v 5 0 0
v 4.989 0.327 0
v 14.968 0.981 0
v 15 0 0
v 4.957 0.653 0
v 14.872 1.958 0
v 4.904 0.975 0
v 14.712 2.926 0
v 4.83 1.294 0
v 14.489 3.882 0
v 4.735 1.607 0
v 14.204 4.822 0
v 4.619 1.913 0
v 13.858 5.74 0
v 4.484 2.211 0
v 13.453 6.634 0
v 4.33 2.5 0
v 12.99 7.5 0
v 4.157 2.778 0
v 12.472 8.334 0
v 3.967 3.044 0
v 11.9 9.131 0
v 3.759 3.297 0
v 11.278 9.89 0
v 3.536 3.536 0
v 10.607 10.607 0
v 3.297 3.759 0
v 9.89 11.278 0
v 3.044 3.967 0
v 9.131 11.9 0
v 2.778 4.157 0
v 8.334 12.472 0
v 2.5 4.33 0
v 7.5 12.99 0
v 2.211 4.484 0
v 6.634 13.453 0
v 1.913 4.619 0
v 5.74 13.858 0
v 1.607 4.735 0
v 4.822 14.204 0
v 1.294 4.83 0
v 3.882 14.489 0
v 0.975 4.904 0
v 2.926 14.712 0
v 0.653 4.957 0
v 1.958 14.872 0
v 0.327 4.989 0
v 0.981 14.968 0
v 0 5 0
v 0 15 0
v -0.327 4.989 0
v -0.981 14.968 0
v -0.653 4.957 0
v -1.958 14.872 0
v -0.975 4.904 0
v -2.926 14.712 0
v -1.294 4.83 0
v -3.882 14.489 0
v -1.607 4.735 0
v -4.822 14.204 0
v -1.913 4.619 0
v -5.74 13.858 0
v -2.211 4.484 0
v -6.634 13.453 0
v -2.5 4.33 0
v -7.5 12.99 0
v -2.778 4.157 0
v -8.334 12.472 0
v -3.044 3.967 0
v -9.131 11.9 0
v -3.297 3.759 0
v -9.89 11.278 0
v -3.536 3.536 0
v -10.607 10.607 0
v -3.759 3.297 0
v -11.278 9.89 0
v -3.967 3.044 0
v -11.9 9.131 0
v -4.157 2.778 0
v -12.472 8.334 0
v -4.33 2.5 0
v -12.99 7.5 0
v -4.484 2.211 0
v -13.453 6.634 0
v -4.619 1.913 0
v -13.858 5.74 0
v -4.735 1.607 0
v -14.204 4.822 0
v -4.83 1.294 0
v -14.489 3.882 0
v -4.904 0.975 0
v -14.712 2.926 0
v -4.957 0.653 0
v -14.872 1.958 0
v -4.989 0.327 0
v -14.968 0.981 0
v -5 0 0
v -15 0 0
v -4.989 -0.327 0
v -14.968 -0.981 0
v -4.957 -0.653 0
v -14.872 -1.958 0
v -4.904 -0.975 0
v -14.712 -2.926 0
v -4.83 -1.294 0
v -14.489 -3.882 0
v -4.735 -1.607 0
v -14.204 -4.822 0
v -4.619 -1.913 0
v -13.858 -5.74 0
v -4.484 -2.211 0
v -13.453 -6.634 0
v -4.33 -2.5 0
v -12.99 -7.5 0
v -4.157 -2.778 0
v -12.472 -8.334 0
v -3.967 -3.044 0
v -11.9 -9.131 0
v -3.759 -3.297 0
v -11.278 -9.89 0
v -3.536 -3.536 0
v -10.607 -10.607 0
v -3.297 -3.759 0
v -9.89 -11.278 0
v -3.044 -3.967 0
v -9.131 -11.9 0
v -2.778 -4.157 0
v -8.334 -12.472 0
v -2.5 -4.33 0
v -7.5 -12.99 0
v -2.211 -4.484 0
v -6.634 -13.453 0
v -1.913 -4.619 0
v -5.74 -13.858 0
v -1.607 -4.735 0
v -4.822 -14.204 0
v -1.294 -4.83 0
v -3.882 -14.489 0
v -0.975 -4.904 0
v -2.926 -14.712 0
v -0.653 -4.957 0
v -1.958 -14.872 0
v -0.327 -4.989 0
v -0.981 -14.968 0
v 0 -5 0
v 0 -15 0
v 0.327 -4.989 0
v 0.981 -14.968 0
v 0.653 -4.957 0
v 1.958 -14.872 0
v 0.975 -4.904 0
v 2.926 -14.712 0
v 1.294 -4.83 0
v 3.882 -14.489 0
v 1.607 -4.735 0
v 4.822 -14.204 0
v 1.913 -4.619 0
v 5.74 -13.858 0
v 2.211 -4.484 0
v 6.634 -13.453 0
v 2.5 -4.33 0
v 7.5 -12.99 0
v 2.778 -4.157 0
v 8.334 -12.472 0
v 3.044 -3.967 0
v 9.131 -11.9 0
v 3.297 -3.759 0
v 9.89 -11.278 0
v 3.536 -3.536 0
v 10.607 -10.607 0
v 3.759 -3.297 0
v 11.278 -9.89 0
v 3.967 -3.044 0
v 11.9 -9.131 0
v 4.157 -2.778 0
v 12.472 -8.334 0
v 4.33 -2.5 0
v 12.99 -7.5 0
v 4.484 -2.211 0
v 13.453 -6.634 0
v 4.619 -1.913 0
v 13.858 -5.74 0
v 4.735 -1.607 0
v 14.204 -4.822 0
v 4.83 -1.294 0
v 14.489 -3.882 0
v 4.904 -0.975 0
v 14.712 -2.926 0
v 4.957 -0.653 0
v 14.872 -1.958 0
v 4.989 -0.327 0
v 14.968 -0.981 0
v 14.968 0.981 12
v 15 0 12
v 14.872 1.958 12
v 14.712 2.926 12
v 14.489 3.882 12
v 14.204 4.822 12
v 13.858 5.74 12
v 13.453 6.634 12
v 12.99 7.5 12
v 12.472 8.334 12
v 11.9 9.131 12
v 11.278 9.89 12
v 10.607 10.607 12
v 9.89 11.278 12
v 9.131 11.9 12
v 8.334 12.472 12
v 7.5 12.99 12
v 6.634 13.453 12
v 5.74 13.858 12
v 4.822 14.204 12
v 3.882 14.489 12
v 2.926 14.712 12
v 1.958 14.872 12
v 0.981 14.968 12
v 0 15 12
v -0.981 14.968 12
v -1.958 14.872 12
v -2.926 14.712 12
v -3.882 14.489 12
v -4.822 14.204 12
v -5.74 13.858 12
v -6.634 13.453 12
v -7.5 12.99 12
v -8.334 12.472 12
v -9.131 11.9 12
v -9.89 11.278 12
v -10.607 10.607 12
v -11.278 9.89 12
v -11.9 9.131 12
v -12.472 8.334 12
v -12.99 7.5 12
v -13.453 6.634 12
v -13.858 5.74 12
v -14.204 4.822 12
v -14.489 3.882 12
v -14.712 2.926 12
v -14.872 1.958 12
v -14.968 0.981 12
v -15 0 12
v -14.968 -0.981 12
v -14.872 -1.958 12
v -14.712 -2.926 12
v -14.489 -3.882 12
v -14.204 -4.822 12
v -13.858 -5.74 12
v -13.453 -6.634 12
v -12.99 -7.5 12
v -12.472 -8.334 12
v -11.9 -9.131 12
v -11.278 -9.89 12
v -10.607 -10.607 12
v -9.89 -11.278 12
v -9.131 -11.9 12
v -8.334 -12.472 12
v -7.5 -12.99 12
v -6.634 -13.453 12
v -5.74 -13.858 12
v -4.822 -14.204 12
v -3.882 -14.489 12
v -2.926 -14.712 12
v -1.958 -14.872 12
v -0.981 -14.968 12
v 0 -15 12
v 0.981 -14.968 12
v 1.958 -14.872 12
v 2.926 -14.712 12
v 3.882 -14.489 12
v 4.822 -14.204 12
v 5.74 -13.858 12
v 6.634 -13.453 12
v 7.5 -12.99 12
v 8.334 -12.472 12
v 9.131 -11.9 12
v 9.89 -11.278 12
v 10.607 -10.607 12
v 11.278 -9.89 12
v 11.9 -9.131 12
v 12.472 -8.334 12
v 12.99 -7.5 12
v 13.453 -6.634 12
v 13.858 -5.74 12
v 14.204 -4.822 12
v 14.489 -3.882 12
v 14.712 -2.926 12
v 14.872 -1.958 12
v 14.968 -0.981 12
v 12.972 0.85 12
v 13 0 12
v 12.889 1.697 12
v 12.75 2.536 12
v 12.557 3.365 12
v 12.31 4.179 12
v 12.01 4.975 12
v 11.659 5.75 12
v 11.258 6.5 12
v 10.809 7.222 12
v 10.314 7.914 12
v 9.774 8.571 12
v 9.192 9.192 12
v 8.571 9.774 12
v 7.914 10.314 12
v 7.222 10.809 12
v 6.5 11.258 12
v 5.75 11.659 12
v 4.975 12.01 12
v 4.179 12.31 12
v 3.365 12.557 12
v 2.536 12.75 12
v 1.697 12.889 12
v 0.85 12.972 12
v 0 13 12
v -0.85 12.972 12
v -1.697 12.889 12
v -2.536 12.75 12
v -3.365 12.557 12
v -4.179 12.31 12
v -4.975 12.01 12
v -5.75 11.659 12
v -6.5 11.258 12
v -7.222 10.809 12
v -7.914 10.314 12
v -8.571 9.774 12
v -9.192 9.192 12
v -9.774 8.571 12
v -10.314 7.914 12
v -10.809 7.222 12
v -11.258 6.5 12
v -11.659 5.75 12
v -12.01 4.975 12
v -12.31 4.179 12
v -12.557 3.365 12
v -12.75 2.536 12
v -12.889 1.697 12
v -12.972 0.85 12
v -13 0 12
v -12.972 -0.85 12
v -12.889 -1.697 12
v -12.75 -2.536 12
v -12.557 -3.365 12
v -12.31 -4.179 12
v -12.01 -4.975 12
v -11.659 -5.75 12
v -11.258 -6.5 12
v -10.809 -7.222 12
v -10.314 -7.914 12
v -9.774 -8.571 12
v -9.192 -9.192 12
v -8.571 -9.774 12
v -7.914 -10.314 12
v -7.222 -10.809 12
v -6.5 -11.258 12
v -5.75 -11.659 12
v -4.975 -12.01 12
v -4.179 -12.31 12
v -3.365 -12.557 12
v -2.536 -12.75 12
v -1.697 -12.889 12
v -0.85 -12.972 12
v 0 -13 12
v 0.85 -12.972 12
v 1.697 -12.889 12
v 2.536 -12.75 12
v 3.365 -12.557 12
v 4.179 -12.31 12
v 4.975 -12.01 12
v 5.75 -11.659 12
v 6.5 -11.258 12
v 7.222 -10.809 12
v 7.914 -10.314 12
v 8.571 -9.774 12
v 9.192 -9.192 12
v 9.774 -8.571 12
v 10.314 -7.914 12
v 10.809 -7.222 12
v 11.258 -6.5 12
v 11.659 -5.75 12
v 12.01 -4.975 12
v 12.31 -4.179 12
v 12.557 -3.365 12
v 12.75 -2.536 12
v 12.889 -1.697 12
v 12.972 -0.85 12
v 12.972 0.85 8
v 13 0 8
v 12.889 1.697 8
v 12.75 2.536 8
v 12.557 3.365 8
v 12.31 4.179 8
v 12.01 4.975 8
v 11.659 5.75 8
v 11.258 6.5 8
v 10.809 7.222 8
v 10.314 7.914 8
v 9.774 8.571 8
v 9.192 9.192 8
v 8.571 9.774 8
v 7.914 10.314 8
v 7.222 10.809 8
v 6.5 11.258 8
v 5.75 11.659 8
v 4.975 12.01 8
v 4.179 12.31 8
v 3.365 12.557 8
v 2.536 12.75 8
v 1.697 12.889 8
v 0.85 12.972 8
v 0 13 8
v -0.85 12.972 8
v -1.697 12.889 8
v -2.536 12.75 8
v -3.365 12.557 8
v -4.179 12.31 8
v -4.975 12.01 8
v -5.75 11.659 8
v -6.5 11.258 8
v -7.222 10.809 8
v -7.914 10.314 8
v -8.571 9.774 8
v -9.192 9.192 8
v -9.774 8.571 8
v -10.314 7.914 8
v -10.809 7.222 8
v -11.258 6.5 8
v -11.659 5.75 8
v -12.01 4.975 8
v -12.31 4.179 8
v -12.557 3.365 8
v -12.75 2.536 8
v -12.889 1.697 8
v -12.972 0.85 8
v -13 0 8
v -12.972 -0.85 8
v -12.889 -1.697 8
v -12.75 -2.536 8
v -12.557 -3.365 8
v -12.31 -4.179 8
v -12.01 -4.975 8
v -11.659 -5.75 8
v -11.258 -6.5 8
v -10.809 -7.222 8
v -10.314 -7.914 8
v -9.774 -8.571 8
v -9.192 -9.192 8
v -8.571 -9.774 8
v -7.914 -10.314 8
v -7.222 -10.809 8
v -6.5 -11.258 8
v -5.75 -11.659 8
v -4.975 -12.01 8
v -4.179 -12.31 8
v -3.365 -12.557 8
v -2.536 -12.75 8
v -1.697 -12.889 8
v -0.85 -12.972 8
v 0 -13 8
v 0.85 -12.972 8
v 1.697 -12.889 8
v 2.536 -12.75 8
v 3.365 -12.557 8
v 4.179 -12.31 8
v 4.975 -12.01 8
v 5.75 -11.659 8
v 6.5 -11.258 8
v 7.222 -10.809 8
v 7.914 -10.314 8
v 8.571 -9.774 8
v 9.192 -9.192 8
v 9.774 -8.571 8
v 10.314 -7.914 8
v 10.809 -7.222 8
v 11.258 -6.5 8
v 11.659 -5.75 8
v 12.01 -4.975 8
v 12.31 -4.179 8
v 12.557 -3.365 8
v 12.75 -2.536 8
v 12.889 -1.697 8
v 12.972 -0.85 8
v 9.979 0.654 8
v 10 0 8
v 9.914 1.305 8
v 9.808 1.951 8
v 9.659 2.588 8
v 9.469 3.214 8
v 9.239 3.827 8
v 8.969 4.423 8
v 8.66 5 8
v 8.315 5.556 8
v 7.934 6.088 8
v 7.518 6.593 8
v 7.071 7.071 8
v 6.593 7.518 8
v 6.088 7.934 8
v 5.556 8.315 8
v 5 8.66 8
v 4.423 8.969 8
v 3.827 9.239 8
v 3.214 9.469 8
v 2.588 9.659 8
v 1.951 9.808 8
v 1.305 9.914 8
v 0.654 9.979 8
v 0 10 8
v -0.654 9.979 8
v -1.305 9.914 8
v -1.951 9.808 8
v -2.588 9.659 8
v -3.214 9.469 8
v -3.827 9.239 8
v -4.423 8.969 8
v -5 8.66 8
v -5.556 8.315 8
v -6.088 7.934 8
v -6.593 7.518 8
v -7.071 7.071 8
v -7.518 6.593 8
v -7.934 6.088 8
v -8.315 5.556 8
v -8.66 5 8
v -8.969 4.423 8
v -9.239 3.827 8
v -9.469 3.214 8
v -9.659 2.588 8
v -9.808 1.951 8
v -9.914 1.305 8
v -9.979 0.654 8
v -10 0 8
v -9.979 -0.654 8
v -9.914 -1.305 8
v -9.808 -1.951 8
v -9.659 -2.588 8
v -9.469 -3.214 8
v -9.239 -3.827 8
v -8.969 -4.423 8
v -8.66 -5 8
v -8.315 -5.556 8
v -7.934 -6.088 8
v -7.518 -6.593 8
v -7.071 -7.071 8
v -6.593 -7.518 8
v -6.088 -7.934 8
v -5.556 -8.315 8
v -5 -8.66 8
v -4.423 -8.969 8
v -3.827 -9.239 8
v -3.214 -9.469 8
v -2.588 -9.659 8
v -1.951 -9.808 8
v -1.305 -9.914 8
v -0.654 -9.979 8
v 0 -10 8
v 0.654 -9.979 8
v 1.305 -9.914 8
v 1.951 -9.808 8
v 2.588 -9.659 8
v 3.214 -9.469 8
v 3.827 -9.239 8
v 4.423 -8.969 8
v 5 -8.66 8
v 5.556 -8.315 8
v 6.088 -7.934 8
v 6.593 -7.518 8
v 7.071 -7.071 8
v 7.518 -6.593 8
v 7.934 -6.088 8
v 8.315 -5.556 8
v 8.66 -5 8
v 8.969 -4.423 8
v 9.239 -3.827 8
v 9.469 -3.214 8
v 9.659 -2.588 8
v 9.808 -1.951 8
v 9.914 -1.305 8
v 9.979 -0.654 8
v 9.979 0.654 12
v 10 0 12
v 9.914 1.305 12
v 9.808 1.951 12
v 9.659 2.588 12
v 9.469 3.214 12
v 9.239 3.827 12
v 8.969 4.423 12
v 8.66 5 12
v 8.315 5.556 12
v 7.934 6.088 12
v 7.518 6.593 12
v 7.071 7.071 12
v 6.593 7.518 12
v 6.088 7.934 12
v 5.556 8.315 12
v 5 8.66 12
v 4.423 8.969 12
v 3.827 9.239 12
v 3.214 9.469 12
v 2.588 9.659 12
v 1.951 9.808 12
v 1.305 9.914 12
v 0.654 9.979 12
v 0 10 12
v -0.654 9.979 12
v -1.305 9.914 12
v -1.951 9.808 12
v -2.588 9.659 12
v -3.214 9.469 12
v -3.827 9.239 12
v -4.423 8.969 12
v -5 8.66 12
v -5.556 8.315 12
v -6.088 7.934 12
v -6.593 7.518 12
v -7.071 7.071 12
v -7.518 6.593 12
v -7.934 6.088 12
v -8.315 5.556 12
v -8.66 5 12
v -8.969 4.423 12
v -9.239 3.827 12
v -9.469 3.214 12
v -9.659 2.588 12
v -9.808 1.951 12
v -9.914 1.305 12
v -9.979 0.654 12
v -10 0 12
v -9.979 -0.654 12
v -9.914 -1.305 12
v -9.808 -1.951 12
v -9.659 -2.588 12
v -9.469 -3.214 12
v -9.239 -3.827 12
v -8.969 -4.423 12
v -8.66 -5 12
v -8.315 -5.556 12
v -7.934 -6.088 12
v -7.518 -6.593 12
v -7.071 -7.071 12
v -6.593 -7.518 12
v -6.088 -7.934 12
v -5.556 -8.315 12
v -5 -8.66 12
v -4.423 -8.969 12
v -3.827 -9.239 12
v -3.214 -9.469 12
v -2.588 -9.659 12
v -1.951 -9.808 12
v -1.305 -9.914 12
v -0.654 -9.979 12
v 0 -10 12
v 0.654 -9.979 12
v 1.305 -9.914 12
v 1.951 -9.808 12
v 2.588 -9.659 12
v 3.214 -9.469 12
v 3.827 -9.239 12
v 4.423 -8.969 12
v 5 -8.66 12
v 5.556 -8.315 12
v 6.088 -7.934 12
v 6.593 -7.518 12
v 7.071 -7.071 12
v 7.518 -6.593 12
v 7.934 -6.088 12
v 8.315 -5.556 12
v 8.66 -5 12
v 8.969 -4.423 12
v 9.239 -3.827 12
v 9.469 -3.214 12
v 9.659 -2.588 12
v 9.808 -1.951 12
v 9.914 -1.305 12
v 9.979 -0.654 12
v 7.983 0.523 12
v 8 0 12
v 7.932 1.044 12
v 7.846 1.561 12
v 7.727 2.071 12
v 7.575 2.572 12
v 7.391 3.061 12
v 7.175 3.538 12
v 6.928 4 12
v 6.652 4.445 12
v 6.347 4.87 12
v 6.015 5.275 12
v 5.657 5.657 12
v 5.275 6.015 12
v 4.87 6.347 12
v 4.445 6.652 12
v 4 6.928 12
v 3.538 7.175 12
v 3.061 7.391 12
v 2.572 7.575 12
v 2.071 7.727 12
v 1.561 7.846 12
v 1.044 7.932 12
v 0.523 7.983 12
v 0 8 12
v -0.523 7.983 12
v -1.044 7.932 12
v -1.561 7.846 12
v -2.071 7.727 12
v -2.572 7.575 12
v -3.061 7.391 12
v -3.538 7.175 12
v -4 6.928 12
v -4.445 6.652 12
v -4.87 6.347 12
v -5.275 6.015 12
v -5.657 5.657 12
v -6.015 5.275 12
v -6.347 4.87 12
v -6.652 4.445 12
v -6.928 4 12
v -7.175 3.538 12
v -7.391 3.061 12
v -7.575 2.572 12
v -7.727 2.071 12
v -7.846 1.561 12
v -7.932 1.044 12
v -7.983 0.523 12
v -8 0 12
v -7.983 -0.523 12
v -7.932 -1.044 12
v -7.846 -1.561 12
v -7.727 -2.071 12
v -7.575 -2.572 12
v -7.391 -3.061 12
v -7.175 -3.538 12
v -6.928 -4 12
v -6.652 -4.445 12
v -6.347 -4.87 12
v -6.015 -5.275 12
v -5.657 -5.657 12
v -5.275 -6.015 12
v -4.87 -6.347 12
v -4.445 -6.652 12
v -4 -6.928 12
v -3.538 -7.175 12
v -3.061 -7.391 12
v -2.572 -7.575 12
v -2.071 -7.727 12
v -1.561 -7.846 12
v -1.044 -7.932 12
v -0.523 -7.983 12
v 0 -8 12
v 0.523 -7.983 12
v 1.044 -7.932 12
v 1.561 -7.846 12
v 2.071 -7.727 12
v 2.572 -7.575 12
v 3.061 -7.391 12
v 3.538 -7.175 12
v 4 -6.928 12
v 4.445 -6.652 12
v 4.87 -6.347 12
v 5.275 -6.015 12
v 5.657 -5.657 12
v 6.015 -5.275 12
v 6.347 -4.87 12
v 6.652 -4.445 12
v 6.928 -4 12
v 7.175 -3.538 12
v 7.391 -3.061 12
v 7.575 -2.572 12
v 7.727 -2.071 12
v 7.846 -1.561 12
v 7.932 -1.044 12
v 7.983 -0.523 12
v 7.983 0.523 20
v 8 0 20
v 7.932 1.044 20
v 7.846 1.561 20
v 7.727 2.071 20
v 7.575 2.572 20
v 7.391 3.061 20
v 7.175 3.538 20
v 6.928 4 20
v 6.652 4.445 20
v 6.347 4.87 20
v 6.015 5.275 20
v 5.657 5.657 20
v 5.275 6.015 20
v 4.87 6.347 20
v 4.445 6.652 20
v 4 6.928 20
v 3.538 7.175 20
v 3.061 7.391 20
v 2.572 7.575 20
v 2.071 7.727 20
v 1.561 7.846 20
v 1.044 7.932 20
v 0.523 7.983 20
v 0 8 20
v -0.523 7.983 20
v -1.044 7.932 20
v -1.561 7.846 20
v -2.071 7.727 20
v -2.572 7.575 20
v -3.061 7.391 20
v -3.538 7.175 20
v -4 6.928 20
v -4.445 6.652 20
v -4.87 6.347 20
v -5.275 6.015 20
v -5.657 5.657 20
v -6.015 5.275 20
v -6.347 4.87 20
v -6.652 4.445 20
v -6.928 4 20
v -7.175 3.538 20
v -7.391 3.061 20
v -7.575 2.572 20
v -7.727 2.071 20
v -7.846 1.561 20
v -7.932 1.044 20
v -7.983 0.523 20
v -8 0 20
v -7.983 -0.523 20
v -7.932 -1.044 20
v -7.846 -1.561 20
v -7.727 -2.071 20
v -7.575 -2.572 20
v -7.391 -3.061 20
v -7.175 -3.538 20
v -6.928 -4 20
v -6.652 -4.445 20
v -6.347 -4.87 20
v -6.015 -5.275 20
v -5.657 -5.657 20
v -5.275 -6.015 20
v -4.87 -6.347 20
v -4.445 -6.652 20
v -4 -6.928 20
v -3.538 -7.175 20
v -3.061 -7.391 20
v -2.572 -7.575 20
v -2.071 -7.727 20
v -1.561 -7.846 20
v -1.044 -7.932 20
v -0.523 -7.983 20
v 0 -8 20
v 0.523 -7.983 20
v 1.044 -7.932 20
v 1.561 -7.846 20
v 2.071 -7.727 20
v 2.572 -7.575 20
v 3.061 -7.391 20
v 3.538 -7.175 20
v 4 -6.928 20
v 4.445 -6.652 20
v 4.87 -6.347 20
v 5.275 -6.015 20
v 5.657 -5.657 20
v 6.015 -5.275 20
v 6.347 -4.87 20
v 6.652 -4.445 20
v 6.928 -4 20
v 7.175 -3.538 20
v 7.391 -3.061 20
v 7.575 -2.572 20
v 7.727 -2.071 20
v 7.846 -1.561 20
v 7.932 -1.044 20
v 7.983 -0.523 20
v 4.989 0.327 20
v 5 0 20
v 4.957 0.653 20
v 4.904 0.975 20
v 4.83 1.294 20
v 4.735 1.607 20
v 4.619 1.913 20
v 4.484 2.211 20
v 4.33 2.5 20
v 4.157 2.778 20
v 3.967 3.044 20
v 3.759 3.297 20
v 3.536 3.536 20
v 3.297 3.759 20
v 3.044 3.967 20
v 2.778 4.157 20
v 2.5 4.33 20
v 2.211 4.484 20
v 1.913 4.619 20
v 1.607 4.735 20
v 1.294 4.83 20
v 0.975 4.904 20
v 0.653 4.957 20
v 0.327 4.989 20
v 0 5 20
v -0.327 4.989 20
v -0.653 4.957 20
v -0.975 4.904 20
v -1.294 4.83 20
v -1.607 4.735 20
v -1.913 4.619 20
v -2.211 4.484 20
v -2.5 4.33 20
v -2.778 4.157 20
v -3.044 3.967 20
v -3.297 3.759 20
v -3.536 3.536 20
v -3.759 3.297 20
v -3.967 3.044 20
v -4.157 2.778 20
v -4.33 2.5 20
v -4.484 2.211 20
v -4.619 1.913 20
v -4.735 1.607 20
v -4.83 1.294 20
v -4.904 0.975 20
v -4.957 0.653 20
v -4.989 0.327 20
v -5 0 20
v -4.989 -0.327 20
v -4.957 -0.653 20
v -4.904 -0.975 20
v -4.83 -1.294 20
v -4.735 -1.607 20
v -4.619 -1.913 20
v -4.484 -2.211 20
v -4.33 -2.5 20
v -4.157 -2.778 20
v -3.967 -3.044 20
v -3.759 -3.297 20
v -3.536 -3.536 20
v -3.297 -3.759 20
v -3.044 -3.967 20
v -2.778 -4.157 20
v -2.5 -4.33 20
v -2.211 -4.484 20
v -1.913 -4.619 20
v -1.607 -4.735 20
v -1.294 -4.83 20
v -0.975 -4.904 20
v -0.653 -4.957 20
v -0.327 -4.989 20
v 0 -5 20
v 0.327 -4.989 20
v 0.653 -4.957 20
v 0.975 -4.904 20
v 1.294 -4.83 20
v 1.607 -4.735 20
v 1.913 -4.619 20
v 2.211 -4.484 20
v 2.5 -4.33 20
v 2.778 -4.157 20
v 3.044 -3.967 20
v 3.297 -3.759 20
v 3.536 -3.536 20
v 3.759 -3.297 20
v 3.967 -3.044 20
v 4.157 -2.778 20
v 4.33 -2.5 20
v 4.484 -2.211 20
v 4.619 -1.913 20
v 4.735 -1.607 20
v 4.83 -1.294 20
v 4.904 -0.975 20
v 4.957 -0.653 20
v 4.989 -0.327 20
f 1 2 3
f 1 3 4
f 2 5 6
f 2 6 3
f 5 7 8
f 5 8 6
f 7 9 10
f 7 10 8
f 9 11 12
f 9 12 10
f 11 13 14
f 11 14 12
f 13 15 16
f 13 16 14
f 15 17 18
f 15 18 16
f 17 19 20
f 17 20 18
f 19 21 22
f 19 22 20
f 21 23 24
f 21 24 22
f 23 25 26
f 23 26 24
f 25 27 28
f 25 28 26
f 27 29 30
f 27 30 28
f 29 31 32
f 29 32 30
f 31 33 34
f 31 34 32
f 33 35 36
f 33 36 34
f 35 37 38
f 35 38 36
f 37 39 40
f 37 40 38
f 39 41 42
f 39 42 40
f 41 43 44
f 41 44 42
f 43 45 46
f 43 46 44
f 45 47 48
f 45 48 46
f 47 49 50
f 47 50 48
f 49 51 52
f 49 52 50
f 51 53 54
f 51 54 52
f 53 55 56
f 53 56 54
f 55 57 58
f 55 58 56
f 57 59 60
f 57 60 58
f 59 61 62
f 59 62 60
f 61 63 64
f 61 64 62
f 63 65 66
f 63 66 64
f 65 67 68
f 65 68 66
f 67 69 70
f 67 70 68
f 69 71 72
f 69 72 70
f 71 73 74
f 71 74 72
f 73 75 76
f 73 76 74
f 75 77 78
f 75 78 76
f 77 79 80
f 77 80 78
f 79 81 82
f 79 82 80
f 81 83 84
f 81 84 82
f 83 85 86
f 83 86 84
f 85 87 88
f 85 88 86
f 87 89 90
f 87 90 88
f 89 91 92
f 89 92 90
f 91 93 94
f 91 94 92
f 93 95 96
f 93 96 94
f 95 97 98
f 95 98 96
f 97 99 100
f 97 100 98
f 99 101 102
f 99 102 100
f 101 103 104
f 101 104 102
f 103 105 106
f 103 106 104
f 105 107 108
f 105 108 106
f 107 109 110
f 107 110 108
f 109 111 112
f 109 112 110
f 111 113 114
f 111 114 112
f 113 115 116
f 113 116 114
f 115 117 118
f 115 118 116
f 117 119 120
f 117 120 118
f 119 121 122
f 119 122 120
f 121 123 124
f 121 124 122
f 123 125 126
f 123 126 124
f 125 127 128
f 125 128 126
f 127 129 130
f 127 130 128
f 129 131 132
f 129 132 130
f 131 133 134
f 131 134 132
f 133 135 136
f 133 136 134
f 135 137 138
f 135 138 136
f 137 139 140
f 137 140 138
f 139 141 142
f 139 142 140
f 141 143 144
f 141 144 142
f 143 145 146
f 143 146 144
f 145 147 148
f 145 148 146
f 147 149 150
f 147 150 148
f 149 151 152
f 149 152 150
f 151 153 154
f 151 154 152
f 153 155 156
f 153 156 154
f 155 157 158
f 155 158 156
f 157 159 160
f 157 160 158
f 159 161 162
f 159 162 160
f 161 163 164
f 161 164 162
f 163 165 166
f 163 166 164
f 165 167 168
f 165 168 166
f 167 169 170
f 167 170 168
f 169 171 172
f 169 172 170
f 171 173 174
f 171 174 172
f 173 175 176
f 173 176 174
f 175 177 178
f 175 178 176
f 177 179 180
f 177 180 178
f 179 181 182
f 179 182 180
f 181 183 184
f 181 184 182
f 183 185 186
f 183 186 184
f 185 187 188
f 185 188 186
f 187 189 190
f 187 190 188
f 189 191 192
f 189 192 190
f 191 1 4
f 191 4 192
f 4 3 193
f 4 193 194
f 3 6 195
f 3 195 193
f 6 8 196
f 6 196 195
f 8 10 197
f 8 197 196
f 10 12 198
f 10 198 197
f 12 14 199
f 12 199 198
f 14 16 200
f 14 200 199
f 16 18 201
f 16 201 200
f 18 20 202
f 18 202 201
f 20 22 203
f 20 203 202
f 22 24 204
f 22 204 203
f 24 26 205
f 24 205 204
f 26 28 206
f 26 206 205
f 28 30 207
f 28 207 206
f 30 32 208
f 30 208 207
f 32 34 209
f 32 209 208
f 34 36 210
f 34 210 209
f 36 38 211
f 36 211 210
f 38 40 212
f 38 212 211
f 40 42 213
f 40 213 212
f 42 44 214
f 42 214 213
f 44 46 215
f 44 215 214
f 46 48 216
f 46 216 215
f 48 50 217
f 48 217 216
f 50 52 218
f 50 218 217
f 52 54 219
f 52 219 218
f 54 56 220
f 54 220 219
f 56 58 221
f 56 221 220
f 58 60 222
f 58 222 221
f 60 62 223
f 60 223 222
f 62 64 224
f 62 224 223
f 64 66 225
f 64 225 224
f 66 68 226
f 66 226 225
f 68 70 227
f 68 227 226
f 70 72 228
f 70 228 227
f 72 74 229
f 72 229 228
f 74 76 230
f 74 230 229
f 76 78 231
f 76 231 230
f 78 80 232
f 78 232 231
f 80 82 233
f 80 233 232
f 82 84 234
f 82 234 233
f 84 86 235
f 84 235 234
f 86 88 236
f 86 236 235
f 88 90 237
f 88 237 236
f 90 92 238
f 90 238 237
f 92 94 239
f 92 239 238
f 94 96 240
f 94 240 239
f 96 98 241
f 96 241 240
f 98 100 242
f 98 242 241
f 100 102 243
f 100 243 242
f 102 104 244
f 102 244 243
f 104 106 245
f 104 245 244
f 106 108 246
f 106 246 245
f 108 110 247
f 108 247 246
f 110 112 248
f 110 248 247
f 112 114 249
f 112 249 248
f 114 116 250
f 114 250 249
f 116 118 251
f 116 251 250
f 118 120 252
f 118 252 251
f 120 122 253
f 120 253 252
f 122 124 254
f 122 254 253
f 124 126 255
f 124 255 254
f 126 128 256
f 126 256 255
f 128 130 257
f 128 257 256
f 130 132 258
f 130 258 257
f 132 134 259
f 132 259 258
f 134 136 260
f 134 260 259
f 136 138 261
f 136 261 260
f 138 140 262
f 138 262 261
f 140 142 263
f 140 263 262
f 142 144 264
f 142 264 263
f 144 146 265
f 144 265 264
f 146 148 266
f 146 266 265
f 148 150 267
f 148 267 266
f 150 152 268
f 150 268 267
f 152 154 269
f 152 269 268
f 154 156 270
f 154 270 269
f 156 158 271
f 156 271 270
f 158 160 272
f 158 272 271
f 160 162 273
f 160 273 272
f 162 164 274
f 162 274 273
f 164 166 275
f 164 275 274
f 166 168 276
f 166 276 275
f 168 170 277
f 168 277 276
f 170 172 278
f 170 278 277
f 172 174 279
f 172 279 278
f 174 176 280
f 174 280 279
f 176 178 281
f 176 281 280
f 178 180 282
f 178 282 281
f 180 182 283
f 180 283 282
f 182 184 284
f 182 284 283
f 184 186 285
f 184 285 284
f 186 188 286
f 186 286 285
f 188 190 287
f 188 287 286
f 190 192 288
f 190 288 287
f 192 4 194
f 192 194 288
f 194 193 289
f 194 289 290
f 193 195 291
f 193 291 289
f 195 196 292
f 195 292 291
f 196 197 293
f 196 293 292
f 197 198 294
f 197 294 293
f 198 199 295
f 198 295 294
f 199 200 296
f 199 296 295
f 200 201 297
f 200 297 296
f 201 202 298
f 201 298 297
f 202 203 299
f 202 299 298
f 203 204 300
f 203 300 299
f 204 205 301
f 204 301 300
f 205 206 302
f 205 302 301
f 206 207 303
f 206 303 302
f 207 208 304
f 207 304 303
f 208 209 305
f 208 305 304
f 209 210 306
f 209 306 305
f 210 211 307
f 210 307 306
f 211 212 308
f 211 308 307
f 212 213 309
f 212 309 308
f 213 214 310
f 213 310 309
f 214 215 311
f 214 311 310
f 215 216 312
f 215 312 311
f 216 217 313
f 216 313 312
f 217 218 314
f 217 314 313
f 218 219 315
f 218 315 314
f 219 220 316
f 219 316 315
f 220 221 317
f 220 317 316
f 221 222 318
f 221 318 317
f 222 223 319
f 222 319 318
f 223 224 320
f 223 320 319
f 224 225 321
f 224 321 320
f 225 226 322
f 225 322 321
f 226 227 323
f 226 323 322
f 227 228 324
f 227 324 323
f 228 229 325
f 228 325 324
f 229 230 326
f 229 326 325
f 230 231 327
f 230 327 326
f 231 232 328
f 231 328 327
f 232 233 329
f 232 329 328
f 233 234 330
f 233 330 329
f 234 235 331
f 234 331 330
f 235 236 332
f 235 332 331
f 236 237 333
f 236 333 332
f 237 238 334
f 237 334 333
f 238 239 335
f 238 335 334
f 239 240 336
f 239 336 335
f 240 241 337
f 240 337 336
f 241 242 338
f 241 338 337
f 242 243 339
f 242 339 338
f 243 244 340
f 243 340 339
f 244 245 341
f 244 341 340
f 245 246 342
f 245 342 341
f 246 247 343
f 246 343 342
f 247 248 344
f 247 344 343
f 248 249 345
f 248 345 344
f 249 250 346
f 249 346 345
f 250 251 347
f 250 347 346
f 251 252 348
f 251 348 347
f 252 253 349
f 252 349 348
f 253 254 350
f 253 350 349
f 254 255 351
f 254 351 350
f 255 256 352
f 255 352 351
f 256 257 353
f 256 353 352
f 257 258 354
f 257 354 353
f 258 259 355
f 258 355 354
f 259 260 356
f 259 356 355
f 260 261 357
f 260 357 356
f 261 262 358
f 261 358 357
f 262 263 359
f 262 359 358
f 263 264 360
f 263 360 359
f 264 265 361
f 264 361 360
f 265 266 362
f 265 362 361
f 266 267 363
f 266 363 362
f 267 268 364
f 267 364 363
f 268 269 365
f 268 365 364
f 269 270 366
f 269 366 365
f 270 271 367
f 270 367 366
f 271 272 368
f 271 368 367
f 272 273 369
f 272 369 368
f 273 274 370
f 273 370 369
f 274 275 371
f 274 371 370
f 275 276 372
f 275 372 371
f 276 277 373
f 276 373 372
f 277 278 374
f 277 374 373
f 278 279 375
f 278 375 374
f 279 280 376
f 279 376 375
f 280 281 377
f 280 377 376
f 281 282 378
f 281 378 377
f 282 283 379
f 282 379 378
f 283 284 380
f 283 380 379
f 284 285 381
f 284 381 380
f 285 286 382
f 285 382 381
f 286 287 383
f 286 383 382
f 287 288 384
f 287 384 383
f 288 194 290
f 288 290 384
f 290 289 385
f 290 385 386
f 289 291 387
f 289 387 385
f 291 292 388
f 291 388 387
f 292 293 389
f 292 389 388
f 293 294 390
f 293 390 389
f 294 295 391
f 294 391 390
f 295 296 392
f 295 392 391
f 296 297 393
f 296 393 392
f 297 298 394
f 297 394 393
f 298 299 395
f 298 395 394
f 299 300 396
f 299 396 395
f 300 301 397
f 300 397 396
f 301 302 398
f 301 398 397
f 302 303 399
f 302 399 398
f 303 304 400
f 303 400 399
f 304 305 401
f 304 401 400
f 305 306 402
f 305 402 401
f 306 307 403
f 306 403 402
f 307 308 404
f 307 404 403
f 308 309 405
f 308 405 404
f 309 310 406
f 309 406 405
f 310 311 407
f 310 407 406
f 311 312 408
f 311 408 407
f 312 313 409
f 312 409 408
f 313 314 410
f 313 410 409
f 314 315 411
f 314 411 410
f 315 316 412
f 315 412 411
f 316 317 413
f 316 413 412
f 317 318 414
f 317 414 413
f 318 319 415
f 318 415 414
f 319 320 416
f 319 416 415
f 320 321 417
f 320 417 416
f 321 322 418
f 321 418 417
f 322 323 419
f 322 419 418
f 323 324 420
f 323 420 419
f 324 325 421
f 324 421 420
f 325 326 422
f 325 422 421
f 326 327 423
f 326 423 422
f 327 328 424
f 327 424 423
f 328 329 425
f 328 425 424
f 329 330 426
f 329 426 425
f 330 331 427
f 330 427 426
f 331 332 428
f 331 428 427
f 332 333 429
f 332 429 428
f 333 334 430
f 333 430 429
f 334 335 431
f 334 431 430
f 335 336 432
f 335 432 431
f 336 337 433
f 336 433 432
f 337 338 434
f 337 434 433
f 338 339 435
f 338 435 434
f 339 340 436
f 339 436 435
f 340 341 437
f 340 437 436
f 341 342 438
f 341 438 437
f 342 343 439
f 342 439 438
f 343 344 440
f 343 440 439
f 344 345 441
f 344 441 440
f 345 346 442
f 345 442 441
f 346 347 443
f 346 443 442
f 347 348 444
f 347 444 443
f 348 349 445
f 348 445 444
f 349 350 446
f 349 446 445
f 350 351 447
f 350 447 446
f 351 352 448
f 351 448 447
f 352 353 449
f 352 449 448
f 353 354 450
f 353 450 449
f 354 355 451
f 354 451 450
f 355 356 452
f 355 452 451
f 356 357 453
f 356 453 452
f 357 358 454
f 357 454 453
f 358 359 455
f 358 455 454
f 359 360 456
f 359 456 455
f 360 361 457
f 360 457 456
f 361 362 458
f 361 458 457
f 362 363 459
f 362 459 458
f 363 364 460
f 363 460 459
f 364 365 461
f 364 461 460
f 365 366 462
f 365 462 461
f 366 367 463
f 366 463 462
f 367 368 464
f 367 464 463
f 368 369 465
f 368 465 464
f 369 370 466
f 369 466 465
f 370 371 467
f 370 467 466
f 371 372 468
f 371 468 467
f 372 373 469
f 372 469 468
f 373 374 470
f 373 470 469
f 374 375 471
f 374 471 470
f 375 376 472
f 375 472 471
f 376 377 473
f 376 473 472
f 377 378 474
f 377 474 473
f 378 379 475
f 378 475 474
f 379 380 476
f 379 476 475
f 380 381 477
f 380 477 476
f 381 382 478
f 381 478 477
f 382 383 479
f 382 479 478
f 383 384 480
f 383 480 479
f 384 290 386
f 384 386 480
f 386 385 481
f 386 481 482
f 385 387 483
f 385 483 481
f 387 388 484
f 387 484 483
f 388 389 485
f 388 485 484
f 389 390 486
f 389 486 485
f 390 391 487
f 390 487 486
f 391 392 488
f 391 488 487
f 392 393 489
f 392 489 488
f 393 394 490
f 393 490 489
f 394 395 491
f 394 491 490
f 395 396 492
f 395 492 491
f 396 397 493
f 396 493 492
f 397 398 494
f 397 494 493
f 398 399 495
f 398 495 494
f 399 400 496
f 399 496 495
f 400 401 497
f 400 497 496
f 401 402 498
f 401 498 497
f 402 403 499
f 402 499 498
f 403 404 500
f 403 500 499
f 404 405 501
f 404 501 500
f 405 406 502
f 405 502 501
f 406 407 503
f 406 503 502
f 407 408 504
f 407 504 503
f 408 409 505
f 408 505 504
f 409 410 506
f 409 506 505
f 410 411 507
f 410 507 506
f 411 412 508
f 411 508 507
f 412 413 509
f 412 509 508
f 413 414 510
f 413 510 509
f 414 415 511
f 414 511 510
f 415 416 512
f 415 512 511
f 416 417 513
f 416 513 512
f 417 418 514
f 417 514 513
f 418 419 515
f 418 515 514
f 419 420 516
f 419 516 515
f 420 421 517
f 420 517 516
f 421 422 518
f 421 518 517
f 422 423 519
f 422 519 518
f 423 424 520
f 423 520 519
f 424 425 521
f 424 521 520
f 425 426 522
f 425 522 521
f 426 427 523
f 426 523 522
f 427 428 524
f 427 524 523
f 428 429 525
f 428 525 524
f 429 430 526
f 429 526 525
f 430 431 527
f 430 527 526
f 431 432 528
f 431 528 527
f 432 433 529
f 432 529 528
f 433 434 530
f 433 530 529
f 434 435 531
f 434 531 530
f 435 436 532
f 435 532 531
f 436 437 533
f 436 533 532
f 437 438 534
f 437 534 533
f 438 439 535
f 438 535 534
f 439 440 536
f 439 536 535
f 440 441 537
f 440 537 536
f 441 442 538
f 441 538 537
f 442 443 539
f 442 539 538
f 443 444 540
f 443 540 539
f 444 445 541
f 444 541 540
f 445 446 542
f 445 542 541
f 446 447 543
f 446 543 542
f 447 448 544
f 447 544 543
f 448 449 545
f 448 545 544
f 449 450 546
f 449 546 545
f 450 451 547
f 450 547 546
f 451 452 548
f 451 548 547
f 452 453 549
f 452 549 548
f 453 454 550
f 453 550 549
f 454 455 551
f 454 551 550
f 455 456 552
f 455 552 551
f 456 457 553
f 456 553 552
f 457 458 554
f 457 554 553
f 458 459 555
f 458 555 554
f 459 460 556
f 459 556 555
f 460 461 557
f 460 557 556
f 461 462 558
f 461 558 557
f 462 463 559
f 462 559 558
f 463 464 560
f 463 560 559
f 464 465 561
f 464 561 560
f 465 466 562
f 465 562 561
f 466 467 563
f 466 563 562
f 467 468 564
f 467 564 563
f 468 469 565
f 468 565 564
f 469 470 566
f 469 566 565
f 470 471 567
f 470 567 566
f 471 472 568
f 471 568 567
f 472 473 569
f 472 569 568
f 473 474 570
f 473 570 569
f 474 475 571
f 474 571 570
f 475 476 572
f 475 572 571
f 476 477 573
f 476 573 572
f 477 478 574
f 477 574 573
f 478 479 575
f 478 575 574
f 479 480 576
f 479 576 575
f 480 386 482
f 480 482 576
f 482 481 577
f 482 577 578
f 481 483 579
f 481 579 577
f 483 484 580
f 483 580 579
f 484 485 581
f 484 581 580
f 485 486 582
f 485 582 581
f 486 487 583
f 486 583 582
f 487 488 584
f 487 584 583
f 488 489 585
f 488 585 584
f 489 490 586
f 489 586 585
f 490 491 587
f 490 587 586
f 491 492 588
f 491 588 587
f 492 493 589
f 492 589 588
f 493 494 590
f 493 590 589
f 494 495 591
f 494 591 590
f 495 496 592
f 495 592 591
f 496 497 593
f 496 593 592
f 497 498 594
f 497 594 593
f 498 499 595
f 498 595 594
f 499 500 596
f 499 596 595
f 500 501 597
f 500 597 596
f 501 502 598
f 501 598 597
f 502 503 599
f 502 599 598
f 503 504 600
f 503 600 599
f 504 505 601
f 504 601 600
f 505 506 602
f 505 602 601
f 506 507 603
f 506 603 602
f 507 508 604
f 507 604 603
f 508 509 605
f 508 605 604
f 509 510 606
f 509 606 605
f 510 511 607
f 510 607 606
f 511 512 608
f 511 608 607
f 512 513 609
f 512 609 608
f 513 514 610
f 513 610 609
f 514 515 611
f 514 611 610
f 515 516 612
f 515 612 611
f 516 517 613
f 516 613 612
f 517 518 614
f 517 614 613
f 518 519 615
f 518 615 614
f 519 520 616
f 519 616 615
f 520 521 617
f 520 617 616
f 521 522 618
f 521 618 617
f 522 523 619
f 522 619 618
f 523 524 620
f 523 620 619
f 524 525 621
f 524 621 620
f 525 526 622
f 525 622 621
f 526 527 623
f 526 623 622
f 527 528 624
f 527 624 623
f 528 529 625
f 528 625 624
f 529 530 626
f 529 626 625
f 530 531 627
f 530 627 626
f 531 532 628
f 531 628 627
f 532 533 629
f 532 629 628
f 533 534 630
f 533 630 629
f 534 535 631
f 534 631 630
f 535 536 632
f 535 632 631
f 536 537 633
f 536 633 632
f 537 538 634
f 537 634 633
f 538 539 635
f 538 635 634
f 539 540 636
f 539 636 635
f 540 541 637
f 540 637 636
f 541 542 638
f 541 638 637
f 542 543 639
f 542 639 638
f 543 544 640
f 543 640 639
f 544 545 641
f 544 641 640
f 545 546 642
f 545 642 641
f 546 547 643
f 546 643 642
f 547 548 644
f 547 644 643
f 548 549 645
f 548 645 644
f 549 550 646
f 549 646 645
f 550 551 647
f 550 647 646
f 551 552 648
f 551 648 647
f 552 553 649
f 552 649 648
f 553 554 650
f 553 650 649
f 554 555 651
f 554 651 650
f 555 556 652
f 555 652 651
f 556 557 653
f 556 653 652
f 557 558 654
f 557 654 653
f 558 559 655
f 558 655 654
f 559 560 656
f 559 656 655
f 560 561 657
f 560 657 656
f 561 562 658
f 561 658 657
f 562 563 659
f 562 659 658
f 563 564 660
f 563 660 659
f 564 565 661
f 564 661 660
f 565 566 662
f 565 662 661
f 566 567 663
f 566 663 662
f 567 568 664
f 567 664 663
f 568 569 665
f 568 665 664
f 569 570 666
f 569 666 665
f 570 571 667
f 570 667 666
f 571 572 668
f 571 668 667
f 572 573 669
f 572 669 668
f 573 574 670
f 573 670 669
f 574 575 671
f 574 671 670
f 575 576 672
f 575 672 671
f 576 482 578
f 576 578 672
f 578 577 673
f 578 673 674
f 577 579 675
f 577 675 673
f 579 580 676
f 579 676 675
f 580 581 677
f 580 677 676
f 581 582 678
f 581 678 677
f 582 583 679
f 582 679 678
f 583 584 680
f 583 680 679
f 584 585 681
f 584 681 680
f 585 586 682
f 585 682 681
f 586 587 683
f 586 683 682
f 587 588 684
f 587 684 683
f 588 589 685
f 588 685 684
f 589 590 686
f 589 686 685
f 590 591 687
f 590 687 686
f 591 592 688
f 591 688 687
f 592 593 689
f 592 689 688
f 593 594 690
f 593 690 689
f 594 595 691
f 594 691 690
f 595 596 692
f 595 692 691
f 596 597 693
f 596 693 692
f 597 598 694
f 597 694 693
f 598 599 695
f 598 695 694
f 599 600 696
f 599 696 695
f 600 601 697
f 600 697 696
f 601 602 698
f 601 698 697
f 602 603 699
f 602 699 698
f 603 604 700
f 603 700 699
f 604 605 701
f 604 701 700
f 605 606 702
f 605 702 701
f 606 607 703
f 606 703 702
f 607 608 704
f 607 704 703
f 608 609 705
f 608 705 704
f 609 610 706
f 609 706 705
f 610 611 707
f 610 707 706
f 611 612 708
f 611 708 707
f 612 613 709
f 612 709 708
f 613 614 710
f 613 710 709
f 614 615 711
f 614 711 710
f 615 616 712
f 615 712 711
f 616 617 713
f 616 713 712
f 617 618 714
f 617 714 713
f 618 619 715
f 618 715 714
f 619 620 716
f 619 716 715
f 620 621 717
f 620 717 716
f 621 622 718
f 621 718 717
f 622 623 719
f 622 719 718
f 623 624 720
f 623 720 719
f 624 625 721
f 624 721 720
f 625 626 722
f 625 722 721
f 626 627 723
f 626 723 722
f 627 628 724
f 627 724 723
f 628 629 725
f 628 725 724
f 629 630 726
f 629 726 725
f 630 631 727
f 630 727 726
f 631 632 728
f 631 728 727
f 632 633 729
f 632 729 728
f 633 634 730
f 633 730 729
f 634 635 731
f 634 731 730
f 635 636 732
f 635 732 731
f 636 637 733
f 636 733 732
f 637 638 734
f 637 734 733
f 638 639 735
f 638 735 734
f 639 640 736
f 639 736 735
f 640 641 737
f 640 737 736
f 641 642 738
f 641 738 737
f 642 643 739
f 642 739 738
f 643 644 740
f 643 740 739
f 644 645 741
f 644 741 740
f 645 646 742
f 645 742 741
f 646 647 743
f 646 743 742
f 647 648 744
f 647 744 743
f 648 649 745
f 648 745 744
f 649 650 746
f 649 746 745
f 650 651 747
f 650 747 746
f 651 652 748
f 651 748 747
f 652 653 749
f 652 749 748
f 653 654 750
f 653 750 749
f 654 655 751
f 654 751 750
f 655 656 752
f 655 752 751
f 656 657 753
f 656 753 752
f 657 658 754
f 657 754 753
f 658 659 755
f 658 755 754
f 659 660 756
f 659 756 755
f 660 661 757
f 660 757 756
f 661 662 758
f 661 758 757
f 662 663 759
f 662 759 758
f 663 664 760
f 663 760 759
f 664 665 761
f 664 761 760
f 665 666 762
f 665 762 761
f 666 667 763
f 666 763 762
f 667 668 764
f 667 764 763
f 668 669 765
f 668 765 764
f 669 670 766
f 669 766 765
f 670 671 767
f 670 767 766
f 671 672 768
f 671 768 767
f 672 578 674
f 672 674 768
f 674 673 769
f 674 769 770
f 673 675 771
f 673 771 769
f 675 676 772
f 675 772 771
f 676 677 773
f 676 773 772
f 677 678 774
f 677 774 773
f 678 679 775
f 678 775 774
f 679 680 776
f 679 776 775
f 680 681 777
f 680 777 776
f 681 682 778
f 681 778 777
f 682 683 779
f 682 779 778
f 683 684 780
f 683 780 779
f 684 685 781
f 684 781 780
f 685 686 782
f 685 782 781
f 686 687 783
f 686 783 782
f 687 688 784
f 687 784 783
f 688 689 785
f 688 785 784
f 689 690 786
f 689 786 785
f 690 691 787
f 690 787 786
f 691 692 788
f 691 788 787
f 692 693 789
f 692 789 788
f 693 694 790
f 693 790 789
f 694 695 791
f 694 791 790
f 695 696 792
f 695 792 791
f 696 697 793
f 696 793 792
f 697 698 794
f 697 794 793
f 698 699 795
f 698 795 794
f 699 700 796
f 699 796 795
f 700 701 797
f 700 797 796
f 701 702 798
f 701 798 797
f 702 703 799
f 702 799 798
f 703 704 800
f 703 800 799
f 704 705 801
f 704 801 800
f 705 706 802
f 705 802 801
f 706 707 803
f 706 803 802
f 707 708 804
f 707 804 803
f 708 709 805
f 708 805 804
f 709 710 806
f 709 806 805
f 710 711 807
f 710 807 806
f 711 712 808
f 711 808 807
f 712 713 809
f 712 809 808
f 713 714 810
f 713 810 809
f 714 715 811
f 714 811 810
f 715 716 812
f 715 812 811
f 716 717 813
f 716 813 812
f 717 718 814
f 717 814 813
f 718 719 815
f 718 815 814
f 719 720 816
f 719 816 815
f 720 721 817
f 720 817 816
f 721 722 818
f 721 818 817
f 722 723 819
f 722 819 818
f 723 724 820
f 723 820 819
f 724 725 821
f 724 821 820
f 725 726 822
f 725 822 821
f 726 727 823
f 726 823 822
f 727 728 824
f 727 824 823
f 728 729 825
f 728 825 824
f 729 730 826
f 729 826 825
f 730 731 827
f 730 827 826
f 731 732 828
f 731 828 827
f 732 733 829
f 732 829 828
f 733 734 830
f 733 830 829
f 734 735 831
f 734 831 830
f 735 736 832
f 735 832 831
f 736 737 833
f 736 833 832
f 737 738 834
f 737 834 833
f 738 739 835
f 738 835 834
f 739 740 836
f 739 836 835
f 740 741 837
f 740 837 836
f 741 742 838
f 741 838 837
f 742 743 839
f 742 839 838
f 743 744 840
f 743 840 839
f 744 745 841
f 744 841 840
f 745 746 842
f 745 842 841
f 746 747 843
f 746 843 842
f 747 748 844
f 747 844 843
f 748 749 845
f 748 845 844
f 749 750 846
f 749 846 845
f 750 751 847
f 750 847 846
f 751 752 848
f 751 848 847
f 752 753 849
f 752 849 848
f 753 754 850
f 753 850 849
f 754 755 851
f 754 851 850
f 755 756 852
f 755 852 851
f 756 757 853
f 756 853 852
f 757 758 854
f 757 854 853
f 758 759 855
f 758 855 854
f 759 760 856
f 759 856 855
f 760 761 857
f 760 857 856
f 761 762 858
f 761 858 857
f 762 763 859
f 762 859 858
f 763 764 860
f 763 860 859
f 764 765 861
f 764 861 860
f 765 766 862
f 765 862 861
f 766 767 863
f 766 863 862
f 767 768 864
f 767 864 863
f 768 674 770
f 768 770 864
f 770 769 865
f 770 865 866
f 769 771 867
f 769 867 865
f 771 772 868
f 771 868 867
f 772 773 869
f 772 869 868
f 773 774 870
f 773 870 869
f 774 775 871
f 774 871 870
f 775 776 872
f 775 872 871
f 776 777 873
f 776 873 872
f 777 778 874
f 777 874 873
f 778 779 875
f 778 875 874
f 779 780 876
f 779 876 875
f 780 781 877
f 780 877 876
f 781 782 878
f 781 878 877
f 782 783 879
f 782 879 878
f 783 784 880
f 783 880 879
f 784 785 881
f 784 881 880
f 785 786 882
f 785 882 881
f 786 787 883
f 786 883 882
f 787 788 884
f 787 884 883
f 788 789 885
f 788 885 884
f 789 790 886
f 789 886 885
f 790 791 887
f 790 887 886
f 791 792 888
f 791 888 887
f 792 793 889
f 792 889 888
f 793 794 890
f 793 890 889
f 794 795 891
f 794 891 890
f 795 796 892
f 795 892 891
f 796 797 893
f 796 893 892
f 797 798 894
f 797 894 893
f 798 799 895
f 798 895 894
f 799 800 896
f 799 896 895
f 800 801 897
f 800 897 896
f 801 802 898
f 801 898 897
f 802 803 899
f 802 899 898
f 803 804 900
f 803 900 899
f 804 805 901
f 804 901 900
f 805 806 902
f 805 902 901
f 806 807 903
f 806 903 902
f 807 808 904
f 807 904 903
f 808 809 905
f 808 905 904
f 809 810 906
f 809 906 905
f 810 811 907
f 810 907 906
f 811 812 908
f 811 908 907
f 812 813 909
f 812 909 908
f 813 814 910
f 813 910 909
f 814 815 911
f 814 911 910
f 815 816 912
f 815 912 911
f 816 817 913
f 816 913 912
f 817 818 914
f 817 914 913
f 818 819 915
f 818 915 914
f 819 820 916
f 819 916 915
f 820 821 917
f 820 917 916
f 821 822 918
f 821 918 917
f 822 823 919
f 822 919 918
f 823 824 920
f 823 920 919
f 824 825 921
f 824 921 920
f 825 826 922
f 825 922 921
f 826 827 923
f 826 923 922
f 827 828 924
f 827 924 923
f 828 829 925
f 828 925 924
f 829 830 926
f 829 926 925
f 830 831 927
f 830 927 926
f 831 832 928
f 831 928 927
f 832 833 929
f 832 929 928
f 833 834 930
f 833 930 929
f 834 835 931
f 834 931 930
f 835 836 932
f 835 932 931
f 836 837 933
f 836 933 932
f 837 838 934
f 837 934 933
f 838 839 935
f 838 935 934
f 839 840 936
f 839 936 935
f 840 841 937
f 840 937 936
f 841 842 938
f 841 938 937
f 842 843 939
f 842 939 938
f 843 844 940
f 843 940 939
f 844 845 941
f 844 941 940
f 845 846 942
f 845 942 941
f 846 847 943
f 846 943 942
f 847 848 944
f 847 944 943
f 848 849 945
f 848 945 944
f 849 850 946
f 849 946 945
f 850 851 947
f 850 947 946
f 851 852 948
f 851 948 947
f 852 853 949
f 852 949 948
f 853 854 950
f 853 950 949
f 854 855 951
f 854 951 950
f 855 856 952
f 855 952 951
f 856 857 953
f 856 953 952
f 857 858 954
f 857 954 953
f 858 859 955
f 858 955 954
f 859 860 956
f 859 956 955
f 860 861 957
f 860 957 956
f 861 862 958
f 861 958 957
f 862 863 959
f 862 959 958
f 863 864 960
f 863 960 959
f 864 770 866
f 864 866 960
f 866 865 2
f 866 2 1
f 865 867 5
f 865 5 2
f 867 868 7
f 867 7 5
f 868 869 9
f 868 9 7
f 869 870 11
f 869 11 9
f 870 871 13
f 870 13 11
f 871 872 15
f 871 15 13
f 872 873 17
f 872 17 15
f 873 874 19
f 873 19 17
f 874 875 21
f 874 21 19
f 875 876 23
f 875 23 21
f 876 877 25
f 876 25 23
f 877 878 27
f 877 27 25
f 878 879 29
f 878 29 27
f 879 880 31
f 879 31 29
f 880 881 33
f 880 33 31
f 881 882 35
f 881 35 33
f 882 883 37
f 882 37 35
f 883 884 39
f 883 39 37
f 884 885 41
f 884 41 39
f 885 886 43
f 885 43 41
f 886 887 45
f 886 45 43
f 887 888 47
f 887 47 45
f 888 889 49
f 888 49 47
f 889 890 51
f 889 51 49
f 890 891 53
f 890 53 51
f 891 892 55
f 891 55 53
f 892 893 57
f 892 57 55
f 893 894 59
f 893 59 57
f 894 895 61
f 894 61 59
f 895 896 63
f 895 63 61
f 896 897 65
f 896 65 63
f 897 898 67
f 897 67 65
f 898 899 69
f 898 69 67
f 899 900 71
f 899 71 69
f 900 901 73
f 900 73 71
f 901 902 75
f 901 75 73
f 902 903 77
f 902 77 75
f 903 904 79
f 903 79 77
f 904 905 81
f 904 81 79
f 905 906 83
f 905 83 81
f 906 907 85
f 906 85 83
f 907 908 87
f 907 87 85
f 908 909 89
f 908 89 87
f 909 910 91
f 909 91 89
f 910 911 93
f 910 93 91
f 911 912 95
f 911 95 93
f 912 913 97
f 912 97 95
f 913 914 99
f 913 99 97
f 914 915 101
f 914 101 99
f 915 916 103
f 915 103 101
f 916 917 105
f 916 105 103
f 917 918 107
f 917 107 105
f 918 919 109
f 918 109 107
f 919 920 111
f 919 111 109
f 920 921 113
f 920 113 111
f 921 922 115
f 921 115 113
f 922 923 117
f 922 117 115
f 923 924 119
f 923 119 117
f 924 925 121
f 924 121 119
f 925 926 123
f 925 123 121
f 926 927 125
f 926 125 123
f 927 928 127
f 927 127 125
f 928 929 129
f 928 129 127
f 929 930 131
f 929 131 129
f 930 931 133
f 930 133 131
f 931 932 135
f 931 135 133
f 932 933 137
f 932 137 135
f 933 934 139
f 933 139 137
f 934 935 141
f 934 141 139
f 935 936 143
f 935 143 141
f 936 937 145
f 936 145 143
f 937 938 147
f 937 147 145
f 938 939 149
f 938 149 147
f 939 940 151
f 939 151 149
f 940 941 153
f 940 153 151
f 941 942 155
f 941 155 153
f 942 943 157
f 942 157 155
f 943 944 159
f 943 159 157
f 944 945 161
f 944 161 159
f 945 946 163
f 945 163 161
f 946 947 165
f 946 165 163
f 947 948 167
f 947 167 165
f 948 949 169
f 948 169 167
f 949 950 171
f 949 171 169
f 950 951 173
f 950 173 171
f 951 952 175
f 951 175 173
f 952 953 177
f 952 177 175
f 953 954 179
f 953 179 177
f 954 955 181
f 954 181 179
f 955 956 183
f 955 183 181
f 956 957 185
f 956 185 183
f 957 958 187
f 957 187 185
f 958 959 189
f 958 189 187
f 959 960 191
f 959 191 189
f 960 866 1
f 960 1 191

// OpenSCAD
// Original MechIntel educational model. CC0-1.0. Units: mm.
// Not a standardized or load-rated component.
$fn=96;
// Section points: [radius, height], mm. Edit to change the profile.
section=[[5, 0], [15, 0], [15, 12], [13, 12], [13, 8], [10, 8], [10, 12], [8, 12], [8, 20], [5, 20]];
rotate_extrude($fn=96) polygon(points=section);
